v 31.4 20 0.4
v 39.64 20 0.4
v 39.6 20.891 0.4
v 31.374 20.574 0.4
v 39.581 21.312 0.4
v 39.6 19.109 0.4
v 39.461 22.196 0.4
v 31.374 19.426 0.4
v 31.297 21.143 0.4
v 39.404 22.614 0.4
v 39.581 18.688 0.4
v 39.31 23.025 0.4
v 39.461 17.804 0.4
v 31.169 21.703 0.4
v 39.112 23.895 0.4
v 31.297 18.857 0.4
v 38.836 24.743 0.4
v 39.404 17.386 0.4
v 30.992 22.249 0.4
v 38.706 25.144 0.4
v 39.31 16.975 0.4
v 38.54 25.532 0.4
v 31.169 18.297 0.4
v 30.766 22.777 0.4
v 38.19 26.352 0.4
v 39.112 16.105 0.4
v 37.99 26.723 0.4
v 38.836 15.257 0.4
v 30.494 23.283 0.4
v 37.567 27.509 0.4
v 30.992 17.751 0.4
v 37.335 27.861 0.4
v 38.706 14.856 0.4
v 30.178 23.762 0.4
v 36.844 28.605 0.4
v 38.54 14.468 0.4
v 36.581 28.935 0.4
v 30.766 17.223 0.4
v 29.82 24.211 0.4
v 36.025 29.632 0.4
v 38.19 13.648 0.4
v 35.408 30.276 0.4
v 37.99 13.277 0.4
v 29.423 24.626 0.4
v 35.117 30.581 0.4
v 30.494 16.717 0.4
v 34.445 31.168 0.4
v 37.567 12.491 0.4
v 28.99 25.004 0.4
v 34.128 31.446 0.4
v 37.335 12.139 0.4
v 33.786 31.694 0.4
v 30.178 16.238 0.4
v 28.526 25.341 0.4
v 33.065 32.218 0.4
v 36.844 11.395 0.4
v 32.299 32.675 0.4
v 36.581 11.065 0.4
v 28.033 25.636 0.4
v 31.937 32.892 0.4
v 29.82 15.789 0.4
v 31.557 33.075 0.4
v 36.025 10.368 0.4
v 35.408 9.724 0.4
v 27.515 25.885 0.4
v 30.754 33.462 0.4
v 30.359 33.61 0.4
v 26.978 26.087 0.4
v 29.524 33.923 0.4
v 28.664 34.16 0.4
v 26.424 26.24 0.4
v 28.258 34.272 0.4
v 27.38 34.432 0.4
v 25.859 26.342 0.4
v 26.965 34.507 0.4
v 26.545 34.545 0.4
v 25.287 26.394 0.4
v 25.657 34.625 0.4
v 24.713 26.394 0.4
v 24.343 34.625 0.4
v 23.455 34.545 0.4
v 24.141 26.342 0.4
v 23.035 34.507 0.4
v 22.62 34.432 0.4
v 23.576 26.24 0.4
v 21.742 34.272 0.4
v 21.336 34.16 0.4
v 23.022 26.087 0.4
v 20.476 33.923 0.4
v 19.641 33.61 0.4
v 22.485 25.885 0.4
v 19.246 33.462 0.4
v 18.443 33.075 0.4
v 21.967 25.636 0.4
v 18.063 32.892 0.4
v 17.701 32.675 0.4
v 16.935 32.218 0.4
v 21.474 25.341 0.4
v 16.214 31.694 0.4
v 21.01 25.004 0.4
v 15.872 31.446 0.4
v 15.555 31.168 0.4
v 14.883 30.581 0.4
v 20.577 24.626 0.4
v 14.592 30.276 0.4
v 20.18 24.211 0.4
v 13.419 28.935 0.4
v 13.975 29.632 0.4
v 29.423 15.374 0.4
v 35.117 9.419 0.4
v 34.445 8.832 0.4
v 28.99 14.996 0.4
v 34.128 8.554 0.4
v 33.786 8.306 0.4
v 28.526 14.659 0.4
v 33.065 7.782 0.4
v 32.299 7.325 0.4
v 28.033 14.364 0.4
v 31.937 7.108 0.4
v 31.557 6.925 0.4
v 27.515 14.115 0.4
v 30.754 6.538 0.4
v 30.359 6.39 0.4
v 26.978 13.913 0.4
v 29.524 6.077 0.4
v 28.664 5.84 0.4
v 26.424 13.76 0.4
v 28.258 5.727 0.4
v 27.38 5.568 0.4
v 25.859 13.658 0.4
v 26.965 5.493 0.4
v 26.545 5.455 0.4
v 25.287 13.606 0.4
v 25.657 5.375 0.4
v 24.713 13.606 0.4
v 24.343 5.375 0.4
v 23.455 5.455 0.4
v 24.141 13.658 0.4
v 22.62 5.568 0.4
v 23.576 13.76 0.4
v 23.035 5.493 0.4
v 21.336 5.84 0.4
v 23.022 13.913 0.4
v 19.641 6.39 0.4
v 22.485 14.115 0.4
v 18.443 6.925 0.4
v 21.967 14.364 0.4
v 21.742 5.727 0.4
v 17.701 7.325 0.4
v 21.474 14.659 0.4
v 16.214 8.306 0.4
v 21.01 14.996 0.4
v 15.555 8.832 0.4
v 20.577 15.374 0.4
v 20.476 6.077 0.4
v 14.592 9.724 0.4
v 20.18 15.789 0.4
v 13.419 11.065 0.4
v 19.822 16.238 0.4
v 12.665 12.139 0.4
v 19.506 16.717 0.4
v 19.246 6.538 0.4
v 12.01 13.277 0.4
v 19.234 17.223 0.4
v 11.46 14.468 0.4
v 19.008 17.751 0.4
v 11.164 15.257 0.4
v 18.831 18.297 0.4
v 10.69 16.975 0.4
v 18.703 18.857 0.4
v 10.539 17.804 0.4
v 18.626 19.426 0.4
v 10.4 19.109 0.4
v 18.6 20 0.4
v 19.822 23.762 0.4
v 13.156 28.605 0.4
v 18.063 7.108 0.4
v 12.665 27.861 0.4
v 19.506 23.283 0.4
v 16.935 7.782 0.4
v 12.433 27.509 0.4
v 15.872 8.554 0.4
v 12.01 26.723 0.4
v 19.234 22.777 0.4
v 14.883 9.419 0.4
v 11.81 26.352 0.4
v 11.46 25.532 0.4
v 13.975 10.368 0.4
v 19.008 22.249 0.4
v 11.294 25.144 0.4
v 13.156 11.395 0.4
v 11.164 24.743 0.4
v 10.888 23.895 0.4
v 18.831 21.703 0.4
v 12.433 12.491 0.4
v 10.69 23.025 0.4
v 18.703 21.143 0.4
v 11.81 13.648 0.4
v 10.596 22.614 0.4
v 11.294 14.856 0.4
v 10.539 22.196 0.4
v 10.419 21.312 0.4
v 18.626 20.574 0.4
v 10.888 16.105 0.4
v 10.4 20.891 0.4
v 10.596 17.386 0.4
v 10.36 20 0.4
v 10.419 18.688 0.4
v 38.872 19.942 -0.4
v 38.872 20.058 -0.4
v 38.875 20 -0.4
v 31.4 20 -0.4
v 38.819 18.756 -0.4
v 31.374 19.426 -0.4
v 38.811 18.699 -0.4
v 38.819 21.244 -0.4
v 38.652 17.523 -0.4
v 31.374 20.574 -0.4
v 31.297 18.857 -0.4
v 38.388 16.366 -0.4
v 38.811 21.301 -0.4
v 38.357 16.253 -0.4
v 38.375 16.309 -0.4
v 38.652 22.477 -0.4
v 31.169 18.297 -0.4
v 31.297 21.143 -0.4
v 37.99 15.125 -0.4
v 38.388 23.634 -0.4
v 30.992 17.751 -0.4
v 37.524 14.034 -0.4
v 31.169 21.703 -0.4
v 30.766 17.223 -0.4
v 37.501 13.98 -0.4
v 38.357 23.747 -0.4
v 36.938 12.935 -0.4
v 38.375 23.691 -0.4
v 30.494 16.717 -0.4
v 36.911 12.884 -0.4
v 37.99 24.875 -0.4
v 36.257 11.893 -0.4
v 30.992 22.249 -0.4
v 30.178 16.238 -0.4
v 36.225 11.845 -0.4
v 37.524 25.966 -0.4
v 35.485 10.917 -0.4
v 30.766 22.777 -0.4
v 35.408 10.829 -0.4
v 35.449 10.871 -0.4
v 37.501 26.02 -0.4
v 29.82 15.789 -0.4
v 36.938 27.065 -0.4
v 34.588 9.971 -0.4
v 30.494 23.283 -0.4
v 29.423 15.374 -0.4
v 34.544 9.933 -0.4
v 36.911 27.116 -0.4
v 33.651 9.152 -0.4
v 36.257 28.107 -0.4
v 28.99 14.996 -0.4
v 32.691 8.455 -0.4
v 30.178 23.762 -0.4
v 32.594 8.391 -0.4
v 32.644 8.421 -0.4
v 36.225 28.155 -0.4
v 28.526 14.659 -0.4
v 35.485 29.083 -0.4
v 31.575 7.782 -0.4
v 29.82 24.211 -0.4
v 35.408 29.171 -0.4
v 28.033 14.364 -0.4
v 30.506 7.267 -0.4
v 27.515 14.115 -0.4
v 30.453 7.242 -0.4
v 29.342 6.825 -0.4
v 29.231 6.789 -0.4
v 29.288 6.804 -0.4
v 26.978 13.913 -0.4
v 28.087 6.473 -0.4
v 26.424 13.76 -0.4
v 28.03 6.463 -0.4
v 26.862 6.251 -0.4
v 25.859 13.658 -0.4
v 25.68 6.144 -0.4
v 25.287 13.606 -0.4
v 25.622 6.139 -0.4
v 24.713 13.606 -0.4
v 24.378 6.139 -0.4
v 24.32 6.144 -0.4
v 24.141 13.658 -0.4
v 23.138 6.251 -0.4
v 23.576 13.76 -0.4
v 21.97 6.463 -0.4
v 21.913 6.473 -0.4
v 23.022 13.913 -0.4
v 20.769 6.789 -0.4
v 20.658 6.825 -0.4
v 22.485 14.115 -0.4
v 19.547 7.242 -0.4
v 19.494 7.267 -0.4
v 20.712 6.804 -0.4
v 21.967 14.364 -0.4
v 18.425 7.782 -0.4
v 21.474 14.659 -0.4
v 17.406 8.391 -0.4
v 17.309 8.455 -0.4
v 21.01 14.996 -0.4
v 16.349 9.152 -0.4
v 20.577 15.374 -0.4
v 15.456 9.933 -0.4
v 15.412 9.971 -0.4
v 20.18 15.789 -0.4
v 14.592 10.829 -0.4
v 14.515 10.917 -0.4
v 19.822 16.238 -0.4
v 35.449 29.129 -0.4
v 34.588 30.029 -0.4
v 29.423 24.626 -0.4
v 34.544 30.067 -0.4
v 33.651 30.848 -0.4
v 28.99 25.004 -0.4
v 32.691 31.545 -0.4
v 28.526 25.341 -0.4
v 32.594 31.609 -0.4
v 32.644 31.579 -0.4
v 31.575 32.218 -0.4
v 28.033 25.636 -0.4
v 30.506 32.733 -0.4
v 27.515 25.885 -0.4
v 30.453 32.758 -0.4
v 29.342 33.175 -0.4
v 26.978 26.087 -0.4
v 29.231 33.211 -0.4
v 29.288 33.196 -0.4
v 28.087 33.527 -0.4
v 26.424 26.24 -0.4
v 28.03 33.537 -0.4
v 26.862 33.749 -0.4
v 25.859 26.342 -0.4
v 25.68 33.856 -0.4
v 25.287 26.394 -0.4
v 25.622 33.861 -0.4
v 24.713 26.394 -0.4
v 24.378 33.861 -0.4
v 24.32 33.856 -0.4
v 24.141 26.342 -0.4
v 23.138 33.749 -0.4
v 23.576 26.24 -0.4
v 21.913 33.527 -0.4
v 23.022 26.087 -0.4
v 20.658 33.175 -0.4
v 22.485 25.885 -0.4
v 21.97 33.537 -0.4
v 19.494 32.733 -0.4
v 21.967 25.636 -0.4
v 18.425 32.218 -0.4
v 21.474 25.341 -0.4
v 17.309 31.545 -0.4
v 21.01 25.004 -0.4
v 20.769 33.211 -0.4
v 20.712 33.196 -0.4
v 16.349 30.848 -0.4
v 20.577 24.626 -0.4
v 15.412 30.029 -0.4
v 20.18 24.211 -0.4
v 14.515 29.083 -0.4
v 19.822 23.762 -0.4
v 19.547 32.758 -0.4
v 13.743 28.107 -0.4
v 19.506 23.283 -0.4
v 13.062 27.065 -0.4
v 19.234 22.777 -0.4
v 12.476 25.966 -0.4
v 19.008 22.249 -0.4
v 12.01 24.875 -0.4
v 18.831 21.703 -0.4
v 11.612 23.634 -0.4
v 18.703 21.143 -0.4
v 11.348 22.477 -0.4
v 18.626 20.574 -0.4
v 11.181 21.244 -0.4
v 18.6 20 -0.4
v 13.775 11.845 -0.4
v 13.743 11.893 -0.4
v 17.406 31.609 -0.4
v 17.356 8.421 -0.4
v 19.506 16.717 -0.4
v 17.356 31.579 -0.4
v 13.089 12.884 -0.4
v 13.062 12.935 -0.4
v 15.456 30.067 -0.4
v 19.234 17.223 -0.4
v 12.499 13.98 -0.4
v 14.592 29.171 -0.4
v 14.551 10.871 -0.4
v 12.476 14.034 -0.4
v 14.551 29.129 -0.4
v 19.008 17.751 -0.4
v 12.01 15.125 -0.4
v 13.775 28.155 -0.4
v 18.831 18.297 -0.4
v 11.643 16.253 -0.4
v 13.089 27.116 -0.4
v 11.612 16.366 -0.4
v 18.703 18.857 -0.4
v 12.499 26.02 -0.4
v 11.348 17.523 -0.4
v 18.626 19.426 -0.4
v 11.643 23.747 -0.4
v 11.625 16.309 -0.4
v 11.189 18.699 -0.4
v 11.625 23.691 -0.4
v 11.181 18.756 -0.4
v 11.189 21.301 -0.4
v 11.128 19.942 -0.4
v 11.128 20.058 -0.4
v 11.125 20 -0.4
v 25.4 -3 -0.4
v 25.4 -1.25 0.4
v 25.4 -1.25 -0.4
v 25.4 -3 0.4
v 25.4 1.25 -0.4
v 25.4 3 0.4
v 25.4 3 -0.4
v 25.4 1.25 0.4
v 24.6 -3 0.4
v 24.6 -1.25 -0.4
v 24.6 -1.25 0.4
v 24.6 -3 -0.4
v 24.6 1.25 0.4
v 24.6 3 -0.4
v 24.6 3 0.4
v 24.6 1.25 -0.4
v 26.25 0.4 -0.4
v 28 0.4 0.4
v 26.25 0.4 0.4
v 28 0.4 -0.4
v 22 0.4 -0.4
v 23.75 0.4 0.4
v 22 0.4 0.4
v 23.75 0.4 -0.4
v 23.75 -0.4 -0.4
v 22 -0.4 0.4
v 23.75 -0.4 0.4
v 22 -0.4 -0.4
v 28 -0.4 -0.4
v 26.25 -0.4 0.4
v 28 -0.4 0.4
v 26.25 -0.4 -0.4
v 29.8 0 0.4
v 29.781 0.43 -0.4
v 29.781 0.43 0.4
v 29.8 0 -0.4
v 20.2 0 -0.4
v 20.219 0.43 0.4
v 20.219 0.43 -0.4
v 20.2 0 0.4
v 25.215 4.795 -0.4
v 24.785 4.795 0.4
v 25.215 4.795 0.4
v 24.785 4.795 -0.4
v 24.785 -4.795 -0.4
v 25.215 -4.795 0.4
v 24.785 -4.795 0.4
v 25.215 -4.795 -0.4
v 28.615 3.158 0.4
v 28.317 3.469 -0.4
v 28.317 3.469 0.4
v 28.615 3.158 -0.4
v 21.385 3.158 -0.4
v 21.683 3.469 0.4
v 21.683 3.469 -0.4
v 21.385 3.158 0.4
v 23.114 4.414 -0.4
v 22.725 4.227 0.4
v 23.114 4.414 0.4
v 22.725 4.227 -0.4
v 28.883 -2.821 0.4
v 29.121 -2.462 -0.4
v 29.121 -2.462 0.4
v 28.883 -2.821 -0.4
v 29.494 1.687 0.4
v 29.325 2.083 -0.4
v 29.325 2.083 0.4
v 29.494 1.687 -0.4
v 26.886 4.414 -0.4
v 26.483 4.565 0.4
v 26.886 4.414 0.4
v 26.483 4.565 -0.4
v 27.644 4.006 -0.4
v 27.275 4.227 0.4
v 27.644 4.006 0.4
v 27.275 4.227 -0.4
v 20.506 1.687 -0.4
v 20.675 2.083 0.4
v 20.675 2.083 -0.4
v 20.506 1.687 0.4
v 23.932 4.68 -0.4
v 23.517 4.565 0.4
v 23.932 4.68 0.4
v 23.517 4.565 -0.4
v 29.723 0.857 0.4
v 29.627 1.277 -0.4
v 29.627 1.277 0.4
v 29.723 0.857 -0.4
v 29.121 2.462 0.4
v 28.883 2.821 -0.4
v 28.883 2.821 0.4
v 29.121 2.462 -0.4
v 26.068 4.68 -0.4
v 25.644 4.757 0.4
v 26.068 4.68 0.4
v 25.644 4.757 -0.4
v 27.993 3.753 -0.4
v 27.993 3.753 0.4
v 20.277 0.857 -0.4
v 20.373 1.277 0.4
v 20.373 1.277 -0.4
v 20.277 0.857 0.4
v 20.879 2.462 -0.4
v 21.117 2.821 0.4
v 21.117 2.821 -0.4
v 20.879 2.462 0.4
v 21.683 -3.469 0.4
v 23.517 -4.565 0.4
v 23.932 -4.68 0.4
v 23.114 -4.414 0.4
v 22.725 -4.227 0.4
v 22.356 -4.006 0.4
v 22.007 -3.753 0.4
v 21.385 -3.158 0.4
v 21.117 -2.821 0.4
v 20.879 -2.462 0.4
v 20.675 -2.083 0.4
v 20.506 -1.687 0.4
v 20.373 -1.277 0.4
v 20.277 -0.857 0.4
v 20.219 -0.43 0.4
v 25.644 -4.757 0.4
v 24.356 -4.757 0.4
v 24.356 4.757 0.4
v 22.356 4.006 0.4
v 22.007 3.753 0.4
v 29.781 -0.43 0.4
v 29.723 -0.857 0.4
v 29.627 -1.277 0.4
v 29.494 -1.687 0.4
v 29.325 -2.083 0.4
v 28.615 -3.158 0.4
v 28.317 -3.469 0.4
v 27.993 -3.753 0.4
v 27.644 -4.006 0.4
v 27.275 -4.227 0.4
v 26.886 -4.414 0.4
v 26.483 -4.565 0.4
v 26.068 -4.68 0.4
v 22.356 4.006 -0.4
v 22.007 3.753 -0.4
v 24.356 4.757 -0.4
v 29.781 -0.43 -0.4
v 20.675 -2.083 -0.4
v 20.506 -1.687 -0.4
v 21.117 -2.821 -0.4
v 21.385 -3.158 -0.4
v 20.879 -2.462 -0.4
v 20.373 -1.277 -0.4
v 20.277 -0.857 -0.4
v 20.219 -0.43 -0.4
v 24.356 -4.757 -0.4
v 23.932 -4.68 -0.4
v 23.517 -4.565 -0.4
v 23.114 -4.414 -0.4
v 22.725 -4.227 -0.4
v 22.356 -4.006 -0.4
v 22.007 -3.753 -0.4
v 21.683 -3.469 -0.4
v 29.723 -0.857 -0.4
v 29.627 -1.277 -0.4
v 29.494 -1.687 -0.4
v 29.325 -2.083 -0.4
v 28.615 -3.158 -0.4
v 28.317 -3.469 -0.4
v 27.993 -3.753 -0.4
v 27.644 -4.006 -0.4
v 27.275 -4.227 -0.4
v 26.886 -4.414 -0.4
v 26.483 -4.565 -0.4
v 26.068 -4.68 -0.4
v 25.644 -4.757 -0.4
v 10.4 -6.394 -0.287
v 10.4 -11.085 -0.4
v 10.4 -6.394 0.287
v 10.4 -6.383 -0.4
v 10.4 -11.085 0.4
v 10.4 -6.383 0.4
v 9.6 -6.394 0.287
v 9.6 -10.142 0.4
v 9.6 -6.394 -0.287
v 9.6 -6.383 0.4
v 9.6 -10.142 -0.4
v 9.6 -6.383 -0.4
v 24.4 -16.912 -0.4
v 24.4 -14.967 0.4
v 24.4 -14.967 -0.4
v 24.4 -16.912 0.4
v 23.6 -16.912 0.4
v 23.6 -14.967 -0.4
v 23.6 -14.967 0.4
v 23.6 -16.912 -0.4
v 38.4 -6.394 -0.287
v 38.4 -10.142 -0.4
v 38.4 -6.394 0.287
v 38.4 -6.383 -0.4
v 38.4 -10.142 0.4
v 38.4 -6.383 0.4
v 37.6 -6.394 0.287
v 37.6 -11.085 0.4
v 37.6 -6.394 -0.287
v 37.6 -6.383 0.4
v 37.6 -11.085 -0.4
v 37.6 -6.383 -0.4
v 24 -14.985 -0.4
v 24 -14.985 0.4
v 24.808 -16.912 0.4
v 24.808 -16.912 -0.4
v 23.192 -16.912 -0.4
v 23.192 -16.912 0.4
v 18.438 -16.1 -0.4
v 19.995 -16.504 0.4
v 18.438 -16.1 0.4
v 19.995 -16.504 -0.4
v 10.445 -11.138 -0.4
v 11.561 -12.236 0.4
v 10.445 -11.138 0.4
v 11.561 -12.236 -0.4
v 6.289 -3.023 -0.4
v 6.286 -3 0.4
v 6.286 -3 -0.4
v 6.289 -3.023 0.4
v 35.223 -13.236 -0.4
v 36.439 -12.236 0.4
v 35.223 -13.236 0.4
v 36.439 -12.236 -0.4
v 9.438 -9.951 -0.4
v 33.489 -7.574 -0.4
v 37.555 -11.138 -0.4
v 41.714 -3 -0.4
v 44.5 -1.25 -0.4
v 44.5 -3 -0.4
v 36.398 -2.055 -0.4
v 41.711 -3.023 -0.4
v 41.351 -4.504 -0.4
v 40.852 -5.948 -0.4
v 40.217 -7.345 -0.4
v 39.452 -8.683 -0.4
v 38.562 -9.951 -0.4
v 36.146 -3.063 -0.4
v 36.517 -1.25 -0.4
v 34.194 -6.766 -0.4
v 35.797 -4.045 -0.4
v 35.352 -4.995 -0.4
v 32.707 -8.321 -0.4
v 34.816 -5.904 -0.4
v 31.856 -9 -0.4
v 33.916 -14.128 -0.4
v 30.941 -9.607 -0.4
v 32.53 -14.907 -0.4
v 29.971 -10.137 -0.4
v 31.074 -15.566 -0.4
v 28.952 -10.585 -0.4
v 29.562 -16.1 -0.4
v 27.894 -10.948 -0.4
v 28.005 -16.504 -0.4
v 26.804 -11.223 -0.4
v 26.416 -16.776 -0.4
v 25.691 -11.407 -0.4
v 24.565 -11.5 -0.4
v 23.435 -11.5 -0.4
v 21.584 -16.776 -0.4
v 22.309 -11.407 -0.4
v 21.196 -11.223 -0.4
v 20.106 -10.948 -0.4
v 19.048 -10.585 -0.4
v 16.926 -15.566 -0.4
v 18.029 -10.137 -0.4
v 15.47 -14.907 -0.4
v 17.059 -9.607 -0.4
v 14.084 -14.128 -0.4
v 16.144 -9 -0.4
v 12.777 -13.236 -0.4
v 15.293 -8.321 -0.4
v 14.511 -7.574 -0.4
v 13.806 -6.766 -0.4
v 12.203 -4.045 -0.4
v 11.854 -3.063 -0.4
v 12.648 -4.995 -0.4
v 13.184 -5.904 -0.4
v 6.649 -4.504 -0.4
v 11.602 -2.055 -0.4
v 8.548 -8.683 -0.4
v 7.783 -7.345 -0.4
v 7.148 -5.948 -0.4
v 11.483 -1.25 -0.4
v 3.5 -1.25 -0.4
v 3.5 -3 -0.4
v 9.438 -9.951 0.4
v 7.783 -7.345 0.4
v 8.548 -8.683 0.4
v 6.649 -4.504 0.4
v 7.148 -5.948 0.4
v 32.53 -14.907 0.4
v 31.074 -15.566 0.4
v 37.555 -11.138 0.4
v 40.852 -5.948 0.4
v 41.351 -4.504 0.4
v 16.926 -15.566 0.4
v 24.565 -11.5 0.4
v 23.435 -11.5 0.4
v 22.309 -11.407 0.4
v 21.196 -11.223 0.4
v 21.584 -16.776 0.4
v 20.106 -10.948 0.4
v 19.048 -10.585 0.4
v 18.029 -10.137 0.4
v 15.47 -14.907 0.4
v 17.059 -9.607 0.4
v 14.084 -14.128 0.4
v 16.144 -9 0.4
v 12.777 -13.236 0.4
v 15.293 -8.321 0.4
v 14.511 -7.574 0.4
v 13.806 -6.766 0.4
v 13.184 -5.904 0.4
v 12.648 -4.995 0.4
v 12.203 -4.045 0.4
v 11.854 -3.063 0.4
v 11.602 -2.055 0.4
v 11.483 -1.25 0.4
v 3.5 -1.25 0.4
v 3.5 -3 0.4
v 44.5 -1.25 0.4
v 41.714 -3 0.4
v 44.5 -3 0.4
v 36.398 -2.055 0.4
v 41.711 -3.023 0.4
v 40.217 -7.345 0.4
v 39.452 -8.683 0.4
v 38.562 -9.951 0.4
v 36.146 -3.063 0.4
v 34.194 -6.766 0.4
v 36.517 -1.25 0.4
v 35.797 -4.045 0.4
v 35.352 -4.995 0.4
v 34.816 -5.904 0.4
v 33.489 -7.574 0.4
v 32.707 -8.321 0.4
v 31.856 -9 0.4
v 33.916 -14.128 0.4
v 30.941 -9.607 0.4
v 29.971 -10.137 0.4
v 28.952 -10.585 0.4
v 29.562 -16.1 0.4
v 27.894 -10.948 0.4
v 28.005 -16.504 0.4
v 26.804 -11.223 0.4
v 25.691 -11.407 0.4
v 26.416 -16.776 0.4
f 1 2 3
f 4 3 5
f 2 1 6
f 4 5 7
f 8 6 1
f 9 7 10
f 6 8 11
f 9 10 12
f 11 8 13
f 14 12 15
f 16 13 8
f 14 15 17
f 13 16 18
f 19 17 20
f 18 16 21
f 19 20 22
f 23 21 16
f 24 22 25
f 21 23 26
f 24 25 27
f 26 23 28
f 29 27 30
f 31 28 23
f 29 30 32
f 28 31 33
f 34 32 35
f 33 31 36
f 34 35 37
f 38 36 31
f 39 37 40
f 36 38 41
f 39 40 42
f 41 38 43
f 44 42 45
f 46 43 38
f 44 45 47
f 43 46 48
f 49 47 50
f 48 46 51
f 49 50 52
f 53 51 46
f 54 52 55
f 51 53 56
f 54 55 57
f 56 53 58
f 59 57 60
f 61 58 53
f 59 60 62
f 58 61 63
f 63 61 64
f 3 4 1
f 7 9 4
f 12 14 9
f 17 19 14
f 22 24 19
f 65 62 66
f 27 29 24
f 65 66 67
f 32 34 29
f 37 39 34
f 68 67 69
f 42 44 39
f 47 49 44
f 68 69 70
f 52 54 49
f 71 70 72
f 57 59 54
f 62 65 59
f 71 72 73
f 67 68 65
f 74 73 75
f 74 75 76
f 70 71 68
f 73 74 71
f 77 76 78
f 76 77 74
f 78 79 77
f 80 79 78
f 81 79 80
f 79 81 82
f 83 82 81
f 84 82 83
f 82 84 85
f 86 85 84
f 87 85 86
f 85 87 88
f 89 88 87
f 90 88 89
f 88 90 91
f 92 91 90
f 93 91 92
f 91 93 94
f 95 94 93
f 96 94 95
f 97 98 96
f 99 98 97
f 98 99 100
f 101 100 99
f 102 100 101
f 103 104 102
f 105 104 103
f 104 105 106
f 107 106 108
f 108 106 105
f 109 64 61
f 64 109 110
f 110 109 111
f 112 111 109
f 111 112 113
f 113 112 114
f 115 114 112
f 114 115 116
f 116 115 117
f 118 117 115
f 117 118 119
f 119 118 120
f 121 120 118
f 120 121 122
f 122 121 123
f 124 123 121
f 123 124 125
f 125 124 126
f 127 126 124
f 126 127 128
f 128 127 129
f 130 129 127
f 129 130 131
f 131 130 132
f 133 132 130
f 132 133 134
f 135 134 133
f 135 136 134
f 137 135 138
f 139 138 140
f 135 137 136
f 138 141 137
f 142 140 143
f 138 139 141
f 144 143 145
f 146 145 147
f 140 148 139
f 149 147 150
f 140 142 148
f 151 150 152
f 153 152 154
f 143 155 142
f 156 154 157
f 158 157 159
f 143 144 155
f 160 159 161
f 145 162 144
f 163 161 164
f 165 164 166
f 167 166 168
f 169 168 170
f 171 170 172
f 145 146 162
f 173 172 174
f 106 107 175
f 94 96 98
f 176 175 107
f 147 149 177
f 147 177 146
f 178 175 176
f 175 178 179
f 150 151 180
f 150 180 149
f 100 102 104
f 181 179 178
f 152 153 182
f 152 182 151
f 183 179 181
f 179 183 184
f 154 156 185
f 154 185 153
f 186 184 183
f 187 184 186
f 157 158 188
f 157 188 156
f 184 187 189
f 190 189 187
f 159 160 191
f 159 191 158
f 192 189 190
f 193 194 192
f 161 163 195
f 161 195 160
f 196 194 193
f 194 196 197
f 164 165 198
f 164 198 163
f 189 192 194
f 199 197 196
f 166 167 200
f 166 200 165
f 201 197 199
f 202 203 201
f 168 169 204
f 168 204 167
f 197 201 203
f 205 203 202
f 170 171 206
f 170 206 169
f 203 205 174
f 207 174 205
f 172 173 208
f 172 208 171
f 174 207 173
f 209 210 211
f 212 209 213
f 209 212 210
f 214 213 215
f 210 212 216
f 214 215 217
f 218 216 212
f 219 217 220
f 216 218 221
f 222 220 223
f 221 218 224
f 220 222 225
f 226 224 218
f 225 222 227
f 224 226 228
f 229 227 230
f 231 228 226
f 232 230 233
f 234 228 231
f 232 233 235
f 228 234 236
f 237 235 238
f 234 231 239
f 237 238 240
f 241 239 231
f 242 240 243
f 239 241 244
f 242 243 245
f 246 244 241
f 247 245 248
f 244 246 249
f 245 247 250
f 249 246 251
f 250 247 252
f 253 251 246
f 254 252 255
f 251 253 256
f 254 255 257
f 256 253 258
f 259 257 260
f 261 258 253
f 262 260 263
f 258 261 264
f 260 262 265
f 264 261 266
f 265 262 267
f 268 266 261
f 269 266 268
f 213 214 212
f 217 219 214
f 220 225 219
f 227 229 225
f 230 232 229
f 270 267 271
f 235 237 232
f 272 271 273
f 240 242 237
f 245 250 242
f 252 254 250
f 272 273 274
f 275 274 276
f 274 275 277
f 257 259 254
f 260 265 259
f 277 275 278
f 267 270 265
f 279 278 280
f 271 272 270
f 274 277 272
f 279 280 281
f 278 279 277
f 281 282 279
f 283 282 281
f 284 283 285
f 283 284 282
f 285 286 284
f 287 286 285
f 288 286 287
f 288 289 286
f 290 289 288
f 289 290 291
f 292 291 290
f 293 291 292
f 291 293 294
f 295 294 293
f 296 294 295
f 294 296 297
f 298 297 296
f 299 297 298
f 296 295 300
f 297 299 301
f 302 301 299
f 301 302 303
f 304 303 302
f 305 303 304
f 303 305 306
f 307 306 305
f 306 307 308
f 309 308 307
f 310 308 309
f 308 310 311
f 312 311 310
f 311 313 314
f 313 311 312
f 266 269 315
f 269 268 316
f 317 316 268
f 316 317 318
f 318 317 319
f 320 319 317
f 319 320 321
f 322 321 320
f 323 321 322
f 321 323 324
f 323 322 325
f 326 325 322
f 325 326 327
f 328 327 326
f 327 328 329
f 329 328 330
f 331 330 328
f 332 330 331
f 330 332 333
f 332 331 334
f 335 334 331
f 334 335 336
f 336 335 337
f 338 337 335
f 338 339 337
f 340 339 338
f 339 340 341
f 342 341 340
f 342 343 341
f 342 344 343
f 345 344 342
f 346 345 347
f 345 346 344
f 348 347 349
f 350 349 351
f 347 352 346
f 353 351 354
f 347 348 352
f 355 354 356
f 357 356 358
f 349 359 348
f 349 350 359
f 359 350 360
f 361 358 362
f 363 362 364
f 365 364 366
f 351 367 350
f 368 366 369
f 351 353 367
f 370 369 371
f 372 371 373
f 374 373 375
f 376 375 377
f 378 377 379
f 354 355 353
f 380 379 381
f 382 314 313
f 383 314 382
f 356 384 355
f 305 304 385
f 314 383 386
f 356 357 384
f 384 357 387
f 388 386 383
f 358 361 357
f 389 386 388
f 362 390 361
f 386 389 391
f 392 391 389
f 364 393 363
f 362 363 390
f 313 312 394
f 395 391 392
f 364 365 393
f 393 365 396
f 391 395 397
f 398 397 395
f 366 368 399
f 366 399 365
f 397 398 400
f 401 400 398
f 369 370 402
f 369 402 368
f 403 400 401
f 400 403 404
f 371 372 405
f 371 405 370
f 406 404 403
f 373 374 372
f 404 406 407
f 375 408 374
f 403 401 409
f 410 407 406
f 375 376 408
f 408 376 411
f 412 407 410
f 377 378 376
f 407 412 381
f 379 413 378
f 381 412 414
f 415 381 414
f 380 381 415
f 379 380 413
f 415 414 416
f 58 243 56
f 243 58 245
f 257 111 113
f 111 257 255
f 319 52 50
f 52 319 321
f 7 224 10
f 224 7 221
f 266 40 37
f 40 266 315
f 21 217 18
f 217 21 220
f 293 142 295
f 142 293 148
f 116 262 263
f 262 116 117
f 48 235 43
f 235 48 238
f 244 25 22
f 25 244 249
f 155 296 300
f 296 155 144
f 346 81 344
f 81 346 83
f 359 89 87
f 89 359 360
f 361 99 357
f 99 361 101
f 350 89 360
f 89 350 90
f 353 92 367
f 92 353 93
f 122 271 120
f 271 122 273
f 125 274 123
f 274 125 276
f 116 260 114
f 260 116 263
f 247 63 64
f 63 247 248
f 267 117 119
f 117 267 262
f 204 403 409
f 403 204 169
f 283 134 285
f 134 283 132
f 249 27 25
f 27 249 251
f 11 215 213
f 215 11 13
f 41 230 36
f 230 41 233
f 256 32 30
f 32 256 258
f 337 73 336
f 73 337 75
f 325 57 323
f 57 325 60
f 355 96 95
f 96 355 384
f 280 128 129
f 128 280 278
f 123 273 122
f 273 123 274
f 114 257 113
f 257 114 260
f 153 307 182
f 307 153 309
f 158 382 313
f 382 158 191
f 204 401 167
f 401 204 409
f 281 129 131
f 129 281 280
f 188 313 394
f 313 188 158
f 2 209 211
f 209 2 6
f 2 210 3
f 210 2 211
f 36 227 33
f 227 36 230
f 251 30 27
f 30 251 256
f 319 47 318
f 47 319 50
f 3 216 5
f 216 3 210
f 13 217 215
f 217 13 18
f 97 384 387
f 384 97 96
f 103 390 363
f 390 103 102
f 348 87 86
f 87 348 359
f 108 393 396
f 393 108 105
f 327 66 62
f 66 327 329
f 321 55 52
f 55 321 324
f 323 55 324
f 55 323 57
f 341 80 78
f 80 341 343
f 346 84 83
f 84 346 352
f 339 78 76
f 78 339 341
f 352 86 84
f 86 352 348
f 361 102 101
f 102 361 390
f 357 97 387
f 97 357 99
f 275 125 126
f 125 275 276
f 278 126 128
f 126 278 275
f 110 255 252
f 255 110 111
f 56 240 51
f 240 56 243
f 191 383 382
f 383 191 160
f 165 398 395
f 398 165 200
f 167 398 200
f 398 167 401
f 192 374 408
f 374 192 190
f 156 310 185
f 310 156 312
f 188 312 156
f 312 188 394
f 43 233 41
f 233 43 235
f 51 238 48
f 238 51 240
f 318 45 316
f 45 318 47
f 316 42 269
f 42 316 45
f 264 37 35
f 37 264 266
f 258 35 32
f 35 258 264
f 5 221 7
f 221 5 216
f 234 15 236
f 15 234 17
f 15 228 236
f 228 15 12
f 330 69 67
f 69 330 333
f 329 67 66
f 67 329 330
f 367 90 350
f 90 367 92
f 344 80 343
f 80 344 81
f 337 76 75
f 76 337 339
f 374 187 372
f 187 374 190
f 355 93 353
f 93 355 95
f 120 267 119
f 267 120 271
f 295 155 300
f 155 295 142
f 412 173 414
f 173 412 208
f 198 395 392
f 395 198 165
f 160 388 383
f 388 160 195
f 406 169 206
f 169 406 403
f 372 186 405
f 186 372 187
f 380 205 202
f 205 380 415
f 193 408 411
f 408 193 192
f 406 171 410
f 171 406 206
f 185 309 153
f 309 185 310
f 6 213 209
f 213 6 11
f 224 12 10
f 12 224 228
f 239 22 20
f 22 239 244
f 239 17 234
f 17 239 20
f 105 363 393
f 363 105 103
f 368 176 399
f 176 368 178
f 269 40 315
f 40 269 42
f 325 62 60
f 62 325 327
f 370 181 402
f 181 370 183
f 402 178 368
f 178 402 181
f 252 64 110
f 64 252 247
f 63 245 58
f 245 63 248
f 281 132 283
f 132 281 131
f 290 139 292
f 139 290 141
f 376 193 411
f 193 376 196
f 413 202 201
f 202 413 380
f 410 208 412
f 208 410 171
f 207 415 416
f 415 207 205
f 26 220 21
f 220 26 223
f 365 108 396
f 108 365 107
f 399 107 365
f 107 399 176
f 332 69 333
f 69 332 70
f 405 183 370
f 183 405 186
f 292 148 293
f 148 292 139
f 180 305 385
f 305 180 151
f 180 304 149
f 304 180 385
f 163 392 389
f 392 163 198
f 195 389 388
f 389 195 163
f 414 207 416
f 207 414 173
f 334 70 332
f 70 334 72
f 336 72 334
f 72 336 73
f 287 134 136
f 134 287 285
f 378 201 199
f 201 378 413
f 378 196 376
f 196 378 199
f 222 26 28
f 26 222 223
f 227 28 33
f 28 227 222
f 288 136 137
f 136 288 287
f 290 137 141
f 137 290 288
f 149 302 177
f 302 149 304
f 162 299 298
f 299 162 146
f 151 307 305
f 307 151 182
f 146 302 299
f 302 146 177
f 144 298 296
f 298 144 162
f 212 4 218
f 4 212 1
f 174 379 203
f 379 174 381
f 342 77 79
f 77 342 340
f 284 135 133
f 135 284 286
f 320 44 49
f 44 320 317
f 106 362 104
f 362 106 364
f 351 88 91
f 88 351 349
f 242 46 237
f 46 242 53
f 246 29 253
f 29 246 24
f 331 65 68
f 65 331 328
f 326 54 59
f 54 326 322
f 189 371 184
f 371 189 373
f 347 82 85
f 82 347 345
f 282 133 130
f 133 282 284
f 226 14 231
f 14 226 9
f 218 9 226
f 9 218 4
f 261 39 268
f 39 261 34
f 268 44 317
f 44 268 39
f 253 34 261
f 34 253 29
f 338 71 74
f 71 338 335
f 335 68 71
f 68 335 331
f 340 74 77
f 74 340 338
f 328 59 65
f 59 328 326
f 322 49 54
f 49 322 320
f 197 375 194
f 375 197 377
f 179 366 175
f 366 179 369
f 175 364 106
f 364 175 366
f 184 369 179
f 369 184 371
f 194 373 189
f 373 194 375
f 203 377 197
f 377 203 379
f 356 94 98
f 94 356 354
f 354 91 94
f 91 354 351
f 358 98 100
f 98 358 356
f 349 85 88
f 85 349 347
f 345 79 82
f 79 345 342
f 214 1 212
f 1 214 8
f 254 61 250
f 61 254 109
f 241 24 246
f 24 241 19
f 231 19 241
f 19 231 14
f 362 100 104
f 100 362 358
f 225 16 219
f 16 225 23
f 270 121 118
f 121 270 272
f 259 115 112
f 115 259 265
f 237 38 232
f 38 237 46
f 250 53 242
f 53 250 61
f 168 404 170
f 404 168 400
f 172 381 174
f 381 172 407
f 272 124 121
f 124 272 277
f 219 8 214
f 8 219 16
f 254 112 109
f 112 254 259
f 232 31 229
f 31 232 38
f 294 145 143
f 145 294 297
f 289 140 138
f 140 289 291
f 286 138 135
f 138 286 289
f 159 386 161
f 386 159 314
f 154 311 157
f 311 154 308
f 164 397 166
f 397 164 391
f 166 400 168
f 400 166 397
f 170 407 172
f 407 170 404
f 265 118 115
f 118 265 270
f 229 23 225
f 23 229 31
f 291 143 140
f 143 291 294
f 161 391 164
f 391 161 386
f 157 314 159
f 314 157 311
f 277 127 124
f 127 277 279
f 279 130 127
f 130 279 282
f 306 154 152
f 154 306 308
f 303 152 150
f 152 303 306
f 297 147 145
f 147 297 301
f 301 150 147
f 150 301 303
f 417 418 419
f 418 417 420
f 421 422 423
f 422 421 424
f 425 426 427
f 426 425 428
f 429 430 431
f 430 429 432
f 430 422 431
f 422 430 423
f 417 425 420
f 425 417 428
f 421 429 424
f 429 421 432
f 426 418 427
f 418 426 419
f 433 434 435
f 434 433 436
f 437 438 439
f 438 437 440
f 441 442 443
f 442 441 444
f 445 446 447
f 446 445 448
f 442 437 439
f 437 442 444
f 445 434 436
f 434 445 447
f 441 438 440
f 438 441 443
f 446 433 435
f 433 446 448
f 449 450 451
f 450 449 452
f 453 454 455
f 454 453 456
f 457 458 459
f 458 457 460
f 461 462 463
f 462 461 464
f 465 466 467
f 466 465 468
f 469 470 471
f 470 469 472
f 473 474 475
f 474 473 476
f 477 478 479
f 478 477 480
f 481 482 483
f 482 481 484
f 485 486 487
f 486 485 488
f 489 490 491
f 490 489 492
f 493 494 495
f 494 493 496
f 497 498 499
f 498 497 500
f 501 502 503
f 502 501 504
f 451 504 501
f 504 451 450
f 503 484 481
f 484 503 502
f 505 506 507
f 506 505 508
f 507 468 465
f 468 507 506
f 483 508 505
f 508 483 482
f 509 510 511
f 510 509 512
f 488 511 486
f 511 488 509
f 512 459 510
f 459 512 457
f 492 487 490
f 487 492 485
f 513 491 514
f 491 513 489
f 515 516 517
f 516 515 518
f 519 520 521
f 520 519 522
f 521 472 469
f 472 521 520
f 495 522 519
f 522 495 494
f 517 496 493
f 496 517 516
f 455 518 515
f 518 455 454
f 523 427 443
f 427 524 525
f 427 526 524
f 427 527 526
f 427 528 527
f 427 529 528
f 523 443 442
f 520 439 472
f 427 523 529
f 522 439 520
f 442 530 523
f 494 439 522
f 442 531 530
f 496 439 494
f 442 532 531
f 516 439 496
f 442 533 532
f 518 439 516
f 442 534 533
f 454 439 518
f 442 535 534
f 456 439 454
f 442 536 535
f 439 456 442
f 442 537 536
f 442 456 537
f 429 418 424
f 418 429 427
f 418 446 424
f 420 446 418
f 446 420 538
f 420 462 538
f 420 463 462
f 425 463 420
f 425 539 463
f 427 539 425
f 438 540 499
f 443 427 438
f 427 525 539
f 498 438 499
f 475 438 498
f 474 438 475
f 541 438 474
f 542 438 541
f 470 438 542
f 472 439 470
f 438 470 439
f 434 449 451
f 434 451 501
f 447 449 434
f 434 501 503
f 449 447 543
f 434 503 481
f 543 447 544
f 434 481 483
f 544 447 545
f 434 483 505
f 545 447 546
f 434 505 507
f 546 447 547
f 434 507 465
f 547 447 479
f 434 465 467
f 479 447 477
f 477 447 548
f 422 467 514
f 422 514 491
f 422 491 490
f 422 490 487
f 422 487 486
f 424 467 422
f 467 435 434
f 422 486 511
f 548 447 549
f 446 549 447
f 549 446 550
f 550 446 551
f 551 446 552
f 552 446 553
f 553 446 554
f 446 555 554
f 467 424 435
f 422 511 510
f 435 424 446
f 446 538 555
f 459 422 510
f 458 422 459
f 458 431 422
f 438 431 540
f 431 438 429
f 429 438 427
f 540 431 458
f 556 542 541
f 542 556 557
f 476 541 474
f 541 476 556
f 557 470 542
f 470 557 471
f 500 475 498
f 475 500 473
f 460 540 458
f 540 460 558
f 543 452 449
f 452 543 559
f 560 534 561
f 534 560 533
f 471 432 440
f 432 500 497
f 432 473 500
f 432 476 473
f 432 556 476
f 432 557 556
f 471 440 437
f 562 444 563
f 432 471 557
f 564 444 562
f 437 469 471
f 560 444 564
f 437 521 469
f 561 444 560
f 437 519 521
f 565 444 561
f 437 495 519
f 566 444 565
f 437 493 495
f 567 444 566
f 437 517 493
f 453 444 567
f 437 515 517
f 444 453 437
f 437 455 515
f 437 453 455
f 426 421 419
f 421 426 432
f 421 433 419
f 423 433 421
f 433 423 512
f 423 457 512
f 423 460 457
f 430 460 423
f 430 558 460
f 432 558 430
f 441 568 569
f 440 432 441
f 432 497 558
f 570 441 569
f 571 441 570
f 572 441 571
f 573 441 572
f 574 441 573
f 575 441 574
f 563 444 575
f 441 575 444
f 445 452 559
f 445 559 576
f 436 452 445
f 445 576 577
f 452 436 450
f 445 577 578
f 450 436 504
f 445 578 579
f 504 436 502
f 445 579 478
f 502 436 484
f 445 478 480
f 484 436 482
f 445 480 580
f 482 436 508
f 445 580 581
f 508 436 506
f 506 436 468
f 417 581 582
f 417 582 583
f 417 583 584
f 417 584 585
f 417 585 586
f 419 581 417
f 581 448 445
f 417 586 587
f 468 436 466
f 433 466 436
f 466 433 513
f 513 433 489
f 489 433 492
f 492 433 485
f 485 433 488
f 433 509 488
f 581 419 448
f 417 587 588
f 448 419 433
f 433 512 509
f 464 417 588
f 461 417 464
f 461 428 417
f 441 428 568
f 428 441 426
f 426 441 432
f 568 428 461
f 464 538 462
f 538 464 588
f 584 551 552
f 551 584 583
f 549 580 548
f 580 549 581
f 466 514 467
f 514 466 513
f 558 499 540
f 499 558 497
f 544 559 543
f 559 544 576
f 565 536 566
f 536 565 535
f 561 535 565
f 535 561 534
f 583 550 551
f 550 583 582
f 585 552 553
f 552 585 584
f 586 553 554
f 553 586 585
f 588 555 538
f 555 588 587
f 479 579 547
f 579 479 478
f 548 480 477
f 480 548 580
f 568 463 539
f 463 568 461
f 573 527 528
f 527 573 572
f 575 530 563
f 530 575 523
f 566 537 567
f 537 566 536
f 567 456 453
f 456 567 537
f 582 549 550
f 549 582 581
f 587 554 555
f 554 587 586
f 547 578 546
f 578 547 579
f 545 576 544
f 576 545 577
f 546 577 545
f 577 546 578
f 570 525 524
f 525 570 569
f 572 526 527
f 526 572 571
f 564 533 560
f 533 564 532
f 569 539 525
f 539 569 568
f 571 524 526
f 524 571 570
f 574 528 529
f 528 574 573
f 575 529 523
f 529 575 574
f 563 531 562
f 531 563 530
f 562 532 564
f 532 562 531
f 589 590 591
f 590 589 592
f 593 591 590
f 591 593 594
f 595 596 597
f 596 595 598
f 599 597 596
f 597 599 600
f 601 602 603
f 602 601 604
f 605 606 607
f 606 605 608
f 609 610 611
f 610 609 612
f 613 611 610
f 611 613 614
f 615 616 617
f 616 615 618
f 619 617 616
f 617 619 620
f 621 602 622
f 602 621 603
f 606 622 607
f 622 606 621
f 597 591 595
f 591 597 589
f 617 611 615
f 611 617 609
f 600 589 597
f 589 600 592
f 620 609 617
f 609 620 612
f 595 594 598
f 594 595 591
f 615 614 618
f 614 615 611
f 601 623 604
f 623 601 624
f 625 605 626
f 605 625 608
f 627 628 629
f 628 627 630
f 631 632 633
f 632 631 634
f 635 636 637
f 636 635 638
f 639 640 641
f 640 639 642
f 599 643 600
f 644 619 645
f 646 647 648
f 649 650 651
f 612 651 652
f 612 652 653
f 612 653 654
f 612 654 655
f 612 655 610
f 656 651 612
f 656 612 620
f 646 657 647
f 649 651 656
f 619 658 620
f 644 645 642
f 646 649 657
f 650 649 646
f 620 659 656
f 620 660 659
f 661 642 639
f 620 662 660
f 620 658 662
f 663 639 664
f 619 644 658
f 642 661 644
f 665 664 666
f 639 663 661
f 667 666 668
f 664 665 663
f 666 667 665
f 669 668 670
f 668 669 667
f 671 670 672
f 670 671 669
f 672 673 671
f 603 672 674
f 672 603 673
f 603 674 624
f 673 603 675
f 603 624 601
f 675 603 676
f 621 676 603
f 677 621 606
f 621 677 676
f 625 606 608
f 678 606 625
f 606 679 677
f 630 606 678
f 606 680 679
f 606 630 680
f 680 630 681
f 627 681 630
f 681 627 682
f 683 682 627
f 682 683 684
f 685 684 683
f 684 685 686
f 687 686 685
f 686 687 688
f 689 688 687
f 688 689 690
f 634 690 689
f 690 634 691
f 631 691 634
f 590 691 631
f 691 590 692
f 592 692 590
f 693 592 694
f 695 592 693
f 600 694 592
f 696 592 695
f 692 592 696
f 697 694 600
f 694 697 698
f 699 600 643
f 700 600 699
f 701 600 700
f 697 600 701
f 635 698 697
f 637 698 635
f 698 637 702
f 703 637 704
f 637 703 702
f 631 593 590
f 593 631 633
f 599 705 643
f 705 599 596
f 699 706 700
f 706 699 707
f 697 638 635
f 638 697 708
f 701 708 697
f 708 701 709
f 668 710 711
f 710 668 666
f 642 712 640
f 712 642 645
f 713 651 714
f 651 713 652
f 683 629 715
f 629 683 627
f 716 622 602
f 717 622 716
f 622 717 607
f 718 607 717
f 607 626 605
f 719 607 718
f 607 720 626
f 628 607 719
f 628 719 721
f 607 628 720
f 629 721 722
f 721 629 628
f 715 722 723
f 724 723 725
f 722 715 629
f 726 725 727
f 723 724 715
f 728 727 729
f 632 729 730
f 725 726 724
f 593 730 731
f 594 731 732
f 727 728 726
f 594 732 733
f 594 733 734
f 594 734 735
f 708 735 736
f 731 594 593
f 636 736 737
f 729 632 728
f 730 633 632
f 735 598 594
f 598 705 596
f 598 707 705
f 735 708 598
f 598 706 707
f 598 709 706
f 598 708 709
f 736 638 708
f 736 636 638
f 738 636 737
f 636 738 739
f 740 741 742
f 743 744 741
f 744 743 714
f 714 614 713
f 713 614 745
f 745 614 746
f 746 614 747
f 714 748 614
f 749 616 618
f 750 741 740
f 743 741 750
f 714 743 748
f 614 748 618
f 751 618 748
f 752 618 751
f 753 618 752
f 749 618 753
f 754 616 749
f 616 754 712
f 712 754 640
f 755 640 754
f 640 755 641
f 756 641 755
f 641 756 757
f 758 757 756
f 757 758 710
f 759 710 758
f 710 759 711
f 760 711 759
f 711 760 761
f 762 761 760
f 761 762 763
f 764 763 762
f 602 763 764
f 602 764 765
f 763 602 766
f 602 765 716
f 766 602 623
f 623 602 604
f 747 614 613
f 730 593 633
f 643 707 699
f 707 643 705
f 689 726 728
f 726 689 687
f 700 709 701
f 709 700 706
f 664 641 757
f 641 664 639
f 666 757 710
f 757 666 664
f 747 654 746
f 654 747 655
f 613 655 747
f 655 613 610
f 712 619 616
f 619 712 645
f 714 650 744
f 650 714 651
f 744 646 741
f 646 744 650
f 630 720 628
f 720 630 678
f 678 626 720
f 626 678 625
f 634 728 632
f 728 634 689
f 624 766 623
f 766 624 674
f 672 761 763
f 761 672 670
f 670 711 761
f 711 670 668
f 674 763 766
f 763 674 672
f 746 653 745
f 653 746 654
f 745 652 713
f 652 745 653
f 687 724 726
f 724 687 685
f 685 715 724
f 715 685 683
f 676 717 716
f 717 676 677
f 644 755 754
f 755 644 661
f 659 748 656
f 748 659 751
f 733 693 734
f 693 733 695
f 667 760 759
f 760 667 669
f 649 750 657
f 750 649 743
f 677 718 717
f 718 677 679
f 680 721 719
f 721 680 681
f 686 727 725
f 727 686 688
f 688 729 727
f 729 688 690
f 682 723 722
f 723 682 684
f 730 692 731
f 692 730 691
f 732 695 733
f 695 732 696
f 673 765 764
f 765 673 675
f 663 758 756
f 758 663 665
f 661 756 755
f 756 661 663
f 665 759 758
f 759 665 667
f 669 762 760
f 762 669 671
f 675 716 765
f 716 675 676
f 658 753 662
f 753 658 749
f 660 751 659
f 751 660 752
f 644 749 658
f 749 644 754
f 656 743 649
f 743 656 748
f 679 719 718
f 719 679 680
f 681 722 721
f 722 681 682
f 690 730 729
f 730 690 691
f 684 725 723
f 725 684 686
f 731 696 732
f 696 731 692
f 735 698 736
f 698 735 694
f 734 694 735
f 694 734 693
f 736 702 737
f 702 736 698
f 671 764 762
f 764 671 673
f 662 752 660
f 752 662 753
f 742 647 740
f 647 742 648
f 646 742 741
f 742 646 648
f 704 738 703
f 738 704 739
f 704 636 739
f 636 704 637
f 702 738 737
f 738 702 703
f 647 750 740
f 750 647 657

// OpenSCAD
$fn = 70;

delta = 2;

nSin = 11.5 * delta; // zmena velkosti zvislej policky vnutorna
nSout = nSin/0.68 ; // zmena velkosti zvislej policky vnutorna
rP = 22 * delta; //r policiek
rZ = 9 * delta; // r zvislych policok
vP = 0.4 * delta; //vyska policiek
vO = 0.4 * delta; // vyska podstavy, strechy
vC = 15 * delta; // vyska cylindra co reze hornu a dolnu policku zvnutra
rG = 10 * delta; //r gule
distance = 7 * delta;
startY = 5 * delta;
pCount = 2 * delta; //pocet policiek

module SphereShelves() {
    difference() {
        difference() {
            intersection() {

                color("red")
                for (j = [0:pCount]) {  //generuje od dola hore :D
                    translate([0, 0, startY + distance *j]) {
                        cube([rP, rP, vP], center=true);
                    }
                }
                
                translate([0, 0, startY + distance]) {
                    sphere(rG, center=true);
                }

            }

            //vnutorna gula
            translate([0, 0, startY + distance]) {
               sphere(rG-5, center=true);
            }
        }

        // vyrez hornej a spodnej policky
        translate([0, 0, startY + distance]) {
            cylinder(h=vC, r=vP*8, center=true);
        }
    }
}

//podstava
module EdgeShelf()
difference() {
    translate([0, 0, startY + distance - rG]) {
        cylinder(h=vO, r=vP*6, center=true);
    }
    union() {
        SphereVertical();
        rotate([0,0,90]) {
            SphereVertical();
            }
    }
}

/*vrch
translate([0, 0, startY + distance + rG]) {
    cylinder(h=vO, r=vP*6, center=true);
}
*/

//zvisly panel

module SphereVertical() {
    difference() {
        difference() {
            union() {
                difference() {
                    translate([0, 0, startY + distance]) {
                        rotate([0,90,0]) {
                            resize(newsize = [0,nSout,0]) cylinder(h=vO, r = rZ, center=true);
                        }
                    }
                    
                    translate([0, 0, startY + distance]) {
                        rotate([0,90,0]) {
                            resize(newsize = [0,nSin,0]) cylinder(h=vO+1, r = rZ*0.7, center=true);
                        }
                    }
                }

                translate([0, 0, startY + distance +rZ]) {
                        cube([vO,6,5], center=true);
                }
                
                translate([0, 0, startY + distance -rZ]) {
                        cube([vO,6,5], center=true);
                }
            }
            SphereShelves();
        }
        translate([0, 0, startY + distance]) {
            cube([vO+0.1,2.5,42], center=true);
        }
    }
}

// umiestnim vsetko vodorovne
translate([25,20,-10]) {
    difference() {
        SphereShelves();
        translate([0, 0, 40]) {
        cube([45,45,40], center=true);
        }
    }
}

 translate([25, 0, -4]) {
     EdgeShelf();
 }

difference() {
    rotate([0,90,0]) { 
        SphereVertical();
    }
    translate([25,18,0]) {
    cube([45,35,3], center=true);
    }
}
